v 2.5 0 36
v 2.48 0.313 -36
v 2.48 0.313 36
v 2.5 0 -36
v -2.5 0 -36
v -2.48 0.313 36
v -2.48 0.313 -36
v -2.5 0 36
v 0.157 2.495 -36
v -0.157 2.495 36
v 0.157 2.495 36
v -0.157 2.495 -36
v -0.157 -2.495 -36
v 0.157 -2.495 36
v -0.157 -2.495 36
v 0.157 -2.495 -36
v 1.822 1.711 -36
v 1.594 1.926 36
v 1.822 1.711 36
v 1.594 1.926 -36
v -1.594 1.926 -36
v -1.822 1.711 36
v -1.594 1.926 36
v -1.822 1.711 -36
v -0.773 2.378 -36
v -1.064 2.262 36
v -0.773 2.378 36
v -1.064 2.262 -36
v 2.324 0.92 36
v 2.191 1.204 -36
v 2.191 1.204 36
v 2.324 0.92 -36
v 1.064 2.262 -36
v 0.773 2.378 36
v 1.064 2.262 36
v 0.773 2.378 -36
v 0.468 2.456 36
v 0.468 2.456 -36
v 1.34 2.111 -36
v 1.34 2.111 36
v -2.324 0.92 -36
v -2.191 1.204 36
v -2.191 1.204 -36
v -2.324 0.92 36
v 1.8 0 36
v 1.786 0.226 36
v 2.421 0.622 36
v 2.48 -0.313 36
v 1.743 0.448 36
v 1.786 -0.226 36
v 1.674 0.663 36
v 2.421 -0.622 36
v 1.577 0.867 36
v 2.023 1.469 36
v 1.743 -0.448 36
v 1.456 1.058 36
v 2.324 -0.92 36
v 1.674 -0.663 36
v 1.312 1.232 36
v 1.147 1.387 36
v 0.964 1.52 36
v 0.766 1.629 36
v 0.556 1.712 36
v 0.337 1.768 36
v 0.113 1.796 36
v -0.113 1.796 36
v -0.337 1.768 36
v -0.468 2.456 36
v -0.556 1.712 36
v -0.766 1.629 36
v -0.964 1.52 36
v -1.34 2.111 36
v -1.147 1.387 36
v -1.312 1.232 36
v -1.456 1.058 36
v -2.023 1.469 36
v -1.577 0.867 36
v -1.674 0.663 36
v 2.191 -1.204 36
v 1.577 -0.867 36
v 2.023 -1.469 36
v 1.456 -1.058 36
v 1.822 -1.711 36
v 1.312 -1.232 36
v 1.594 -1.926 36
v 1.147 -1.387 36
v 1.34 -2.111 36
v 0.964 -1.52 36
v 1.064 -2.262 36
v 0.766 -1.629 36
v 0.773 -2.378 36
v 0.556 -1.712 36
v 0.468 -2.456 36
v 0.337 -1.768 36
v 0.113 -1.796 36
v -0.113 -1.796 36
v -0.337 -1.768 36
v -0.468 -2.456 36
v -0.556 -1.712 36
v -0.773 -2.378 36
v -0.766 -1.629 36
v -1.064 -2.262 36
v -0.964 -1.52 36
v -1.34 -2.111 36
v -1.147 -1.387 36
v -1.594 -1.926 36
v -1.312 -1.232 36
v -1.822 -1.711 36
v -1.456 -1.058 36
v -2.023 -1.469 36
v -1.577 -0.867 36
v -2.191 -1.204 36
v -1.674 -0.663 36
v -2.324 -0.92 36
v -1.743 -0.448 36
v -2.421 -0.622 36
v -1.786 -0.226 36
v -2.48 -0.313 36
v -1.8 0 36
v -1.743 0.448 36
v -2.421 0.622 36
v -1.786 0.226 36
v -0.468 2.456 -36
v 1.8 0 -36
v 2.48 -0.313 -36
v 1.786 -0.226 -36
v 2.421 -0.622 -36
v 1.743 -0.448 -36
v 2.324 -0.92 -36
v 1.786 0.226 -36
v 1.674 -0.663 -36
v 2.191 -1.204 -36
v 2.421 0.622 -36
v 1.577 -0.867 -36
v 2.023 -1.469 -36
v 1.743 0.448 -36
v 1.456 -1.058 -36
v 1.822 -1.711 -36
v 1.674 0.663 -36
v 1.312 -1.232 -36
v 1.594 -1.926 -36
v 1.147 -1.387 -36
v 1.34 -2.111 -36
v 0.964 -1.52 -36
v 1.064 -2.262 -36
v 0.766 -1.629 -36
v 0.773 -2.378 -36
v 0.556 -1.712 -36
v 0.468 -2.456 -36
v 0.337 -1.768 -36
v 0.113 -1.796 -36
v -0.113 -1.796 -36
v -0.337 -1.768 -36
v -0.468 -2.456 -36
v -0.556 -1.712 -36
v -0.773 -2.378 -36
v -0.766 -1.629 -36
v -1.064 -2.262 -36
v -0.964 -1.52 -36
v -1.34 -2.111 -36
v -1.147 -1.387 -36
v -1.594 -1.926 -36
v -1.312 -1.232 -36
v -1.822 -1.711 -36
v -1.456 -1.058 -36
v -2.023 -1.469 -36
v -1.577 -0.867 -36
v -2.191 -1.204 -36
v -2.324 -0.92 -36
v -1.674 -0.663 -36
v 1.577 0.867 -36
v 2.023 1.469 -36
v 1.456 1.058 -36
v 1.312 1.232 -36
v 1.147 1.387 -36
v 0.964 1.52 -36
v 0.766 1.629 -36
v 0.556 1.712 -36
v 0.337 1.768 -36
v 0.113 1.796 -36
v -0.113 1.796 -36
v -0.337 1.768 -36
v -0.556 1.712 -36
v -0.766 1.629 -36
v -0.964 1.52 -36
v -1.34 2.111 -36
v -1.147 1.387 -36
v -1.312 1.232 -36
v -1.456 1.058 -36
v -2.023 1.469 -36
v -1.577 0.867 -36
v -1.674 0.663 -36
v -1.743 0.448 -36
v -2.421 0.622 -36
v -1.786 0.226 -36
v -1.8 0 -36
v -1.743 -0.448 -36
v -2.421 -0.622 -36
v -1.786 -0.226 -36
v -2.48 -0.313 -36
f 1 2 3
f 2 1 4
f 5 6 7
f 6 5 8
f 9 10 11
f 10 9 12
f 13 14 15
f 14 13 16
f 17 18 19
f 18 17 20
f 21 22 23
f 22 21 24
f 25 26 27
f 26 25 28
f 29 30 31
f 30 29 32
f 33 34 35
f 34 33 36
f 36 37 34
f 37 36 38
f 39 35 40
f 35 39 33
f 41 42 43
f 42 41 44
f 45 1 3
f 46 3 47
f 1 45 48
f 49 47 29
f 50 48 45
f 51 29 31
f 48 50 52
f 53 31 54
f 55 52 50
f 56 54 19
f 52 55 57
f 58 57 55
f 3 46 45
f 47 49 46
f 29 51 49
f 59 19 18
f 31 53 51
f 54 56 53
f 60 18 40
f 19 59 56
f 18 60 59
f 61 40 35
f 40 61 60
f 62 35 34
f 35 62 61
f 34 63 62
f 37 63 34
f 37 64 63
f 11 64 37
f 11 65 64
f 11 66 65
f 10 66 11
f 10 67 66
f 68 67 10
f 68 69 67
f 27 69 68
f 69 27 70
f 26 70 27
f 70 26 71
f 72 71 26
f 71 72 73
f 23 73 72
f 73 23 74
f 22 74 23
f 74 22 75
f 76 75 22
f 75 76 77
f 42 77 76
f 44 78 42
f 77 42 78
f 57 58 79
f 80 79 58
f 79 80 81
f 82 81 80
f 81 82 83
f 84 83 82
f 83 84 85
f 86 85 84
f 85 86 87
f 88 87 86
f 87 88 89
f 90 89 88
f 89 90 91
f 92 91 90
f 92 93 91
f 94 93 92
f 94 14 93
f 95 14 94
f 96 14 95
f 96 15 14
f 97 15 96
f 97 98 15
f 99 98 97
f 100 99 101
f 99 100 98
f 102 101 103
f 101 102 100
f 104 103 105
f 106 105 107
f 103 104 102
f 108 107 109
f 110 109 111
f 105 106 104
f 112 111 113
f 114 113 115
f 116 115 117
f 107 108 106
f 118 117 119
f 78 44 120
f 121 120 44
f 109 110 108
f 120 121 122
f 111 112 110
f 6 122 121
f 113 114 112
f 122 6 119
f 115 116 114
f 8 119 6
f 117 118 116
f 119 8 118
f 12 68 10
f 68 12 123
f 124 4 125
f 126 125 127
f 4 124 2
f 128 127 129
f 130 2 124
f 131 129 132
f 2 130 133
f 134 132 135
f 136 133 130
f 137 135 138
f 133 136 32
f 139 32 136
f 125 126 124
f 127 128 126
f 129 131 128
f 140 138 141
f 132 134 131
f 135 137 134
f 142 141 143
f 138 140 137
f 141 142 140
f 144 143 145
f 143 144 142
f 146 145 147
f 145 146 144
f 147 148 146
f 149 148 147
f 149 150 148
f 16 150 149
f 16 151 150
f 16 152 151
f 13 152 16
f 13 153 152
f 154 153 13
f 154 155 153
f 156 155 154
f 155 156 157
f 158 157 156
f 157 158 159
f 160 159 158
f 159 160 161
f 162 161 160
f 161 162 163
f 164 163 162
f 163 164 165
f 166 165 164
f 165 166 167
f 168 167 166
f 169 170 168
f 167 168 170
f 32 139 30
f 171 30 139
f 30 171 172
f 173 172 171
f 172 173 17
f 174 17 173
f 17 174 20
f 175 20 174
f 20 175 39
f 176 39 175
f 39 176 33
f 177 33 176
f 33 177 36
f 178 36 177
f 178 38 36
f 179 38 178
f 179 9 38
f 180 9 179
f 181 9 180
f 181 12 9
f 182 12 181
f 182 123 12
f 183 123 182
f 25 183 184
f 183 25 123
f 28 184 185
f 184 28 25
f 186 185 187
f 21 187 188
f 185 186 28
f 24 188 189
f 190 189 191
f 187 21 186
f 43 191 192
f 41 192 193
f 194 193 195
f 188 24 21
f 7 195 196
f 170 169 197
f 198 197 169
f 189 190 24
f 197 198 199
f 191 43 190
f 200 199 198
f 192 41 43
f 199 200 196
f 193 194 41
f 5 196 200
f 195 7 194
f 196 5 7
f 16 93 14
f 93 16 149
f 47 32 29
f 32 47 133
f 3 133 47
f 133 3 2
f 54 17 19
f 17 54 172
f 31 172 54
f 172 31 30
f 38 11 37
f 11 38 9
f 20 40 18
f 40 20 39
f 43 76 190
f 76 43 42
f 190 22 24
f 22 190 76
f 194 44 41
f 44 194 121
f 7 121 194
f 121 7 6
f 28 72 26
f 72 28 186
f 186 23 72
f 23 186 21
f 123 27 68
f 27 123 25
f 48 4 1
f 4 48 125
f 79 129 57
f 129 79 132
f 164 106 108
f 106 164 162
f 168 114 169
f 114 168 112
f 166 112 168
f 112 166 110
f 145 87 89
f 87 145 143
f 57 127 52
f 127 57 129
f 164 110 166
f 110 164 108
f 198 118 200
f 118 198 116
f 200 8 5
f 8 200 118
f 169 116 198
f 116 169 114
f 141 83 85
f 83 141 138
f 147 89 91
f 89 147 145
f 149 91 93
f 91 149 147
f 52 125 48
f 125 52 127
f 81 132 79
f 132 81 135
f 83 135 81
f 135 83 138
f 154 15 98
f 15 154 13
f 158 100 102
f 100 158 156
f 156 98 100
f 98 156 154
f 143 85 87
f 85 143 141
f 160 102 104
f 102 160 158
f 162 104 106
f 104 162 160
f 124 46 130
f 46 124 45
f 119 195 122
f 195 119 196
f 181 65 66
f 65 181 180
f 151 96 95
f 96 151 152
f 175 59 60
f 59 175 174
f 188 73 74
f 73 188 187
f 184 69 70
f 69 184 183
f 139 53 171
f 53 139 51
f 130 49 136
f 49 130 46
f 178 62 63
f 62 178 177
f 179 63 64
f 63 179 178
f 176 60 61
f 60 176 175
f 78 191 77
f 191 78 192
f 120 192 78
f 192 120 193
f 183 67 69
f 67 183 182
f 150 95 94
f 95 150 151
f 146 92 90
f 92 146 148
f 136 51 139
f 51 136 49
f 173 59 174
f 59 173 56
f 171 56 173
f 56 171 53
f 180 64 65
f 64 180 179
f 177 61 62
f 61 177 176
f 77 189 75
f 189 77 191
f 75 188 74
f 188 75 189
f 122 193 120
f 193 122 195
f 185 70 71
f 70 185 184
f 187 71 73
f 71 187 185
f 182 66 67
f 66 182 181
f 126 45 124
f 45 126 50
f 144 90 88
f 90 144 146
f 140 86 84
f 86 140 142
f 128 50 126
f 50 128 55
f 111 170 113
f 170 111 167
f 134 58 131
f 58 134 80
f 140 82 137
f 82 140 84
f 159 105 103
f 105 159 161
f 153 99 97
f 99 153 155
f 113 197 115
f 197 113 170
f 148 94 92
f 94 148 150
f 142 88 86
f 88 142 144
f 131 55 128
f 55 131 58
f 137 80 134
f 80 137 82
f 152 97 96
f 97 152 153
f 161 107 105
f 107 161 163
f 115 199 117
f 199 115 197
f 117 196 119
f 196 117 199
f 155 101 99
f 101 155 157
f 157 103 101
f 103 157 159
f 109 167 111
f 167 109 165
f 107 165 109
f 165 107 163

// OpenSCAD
$fn = 50;


difference() {
	union() {
		translate(v = [0, 0, -36.0000000000]) {
			cylinder(h = 72, r = 2.5000000000);
		}
	}
	union() {
		translate(v = [0, 0, -100.0000000000]) {
			cylinder(h = 200, r = 1.8000000000);
		}
	}
}
